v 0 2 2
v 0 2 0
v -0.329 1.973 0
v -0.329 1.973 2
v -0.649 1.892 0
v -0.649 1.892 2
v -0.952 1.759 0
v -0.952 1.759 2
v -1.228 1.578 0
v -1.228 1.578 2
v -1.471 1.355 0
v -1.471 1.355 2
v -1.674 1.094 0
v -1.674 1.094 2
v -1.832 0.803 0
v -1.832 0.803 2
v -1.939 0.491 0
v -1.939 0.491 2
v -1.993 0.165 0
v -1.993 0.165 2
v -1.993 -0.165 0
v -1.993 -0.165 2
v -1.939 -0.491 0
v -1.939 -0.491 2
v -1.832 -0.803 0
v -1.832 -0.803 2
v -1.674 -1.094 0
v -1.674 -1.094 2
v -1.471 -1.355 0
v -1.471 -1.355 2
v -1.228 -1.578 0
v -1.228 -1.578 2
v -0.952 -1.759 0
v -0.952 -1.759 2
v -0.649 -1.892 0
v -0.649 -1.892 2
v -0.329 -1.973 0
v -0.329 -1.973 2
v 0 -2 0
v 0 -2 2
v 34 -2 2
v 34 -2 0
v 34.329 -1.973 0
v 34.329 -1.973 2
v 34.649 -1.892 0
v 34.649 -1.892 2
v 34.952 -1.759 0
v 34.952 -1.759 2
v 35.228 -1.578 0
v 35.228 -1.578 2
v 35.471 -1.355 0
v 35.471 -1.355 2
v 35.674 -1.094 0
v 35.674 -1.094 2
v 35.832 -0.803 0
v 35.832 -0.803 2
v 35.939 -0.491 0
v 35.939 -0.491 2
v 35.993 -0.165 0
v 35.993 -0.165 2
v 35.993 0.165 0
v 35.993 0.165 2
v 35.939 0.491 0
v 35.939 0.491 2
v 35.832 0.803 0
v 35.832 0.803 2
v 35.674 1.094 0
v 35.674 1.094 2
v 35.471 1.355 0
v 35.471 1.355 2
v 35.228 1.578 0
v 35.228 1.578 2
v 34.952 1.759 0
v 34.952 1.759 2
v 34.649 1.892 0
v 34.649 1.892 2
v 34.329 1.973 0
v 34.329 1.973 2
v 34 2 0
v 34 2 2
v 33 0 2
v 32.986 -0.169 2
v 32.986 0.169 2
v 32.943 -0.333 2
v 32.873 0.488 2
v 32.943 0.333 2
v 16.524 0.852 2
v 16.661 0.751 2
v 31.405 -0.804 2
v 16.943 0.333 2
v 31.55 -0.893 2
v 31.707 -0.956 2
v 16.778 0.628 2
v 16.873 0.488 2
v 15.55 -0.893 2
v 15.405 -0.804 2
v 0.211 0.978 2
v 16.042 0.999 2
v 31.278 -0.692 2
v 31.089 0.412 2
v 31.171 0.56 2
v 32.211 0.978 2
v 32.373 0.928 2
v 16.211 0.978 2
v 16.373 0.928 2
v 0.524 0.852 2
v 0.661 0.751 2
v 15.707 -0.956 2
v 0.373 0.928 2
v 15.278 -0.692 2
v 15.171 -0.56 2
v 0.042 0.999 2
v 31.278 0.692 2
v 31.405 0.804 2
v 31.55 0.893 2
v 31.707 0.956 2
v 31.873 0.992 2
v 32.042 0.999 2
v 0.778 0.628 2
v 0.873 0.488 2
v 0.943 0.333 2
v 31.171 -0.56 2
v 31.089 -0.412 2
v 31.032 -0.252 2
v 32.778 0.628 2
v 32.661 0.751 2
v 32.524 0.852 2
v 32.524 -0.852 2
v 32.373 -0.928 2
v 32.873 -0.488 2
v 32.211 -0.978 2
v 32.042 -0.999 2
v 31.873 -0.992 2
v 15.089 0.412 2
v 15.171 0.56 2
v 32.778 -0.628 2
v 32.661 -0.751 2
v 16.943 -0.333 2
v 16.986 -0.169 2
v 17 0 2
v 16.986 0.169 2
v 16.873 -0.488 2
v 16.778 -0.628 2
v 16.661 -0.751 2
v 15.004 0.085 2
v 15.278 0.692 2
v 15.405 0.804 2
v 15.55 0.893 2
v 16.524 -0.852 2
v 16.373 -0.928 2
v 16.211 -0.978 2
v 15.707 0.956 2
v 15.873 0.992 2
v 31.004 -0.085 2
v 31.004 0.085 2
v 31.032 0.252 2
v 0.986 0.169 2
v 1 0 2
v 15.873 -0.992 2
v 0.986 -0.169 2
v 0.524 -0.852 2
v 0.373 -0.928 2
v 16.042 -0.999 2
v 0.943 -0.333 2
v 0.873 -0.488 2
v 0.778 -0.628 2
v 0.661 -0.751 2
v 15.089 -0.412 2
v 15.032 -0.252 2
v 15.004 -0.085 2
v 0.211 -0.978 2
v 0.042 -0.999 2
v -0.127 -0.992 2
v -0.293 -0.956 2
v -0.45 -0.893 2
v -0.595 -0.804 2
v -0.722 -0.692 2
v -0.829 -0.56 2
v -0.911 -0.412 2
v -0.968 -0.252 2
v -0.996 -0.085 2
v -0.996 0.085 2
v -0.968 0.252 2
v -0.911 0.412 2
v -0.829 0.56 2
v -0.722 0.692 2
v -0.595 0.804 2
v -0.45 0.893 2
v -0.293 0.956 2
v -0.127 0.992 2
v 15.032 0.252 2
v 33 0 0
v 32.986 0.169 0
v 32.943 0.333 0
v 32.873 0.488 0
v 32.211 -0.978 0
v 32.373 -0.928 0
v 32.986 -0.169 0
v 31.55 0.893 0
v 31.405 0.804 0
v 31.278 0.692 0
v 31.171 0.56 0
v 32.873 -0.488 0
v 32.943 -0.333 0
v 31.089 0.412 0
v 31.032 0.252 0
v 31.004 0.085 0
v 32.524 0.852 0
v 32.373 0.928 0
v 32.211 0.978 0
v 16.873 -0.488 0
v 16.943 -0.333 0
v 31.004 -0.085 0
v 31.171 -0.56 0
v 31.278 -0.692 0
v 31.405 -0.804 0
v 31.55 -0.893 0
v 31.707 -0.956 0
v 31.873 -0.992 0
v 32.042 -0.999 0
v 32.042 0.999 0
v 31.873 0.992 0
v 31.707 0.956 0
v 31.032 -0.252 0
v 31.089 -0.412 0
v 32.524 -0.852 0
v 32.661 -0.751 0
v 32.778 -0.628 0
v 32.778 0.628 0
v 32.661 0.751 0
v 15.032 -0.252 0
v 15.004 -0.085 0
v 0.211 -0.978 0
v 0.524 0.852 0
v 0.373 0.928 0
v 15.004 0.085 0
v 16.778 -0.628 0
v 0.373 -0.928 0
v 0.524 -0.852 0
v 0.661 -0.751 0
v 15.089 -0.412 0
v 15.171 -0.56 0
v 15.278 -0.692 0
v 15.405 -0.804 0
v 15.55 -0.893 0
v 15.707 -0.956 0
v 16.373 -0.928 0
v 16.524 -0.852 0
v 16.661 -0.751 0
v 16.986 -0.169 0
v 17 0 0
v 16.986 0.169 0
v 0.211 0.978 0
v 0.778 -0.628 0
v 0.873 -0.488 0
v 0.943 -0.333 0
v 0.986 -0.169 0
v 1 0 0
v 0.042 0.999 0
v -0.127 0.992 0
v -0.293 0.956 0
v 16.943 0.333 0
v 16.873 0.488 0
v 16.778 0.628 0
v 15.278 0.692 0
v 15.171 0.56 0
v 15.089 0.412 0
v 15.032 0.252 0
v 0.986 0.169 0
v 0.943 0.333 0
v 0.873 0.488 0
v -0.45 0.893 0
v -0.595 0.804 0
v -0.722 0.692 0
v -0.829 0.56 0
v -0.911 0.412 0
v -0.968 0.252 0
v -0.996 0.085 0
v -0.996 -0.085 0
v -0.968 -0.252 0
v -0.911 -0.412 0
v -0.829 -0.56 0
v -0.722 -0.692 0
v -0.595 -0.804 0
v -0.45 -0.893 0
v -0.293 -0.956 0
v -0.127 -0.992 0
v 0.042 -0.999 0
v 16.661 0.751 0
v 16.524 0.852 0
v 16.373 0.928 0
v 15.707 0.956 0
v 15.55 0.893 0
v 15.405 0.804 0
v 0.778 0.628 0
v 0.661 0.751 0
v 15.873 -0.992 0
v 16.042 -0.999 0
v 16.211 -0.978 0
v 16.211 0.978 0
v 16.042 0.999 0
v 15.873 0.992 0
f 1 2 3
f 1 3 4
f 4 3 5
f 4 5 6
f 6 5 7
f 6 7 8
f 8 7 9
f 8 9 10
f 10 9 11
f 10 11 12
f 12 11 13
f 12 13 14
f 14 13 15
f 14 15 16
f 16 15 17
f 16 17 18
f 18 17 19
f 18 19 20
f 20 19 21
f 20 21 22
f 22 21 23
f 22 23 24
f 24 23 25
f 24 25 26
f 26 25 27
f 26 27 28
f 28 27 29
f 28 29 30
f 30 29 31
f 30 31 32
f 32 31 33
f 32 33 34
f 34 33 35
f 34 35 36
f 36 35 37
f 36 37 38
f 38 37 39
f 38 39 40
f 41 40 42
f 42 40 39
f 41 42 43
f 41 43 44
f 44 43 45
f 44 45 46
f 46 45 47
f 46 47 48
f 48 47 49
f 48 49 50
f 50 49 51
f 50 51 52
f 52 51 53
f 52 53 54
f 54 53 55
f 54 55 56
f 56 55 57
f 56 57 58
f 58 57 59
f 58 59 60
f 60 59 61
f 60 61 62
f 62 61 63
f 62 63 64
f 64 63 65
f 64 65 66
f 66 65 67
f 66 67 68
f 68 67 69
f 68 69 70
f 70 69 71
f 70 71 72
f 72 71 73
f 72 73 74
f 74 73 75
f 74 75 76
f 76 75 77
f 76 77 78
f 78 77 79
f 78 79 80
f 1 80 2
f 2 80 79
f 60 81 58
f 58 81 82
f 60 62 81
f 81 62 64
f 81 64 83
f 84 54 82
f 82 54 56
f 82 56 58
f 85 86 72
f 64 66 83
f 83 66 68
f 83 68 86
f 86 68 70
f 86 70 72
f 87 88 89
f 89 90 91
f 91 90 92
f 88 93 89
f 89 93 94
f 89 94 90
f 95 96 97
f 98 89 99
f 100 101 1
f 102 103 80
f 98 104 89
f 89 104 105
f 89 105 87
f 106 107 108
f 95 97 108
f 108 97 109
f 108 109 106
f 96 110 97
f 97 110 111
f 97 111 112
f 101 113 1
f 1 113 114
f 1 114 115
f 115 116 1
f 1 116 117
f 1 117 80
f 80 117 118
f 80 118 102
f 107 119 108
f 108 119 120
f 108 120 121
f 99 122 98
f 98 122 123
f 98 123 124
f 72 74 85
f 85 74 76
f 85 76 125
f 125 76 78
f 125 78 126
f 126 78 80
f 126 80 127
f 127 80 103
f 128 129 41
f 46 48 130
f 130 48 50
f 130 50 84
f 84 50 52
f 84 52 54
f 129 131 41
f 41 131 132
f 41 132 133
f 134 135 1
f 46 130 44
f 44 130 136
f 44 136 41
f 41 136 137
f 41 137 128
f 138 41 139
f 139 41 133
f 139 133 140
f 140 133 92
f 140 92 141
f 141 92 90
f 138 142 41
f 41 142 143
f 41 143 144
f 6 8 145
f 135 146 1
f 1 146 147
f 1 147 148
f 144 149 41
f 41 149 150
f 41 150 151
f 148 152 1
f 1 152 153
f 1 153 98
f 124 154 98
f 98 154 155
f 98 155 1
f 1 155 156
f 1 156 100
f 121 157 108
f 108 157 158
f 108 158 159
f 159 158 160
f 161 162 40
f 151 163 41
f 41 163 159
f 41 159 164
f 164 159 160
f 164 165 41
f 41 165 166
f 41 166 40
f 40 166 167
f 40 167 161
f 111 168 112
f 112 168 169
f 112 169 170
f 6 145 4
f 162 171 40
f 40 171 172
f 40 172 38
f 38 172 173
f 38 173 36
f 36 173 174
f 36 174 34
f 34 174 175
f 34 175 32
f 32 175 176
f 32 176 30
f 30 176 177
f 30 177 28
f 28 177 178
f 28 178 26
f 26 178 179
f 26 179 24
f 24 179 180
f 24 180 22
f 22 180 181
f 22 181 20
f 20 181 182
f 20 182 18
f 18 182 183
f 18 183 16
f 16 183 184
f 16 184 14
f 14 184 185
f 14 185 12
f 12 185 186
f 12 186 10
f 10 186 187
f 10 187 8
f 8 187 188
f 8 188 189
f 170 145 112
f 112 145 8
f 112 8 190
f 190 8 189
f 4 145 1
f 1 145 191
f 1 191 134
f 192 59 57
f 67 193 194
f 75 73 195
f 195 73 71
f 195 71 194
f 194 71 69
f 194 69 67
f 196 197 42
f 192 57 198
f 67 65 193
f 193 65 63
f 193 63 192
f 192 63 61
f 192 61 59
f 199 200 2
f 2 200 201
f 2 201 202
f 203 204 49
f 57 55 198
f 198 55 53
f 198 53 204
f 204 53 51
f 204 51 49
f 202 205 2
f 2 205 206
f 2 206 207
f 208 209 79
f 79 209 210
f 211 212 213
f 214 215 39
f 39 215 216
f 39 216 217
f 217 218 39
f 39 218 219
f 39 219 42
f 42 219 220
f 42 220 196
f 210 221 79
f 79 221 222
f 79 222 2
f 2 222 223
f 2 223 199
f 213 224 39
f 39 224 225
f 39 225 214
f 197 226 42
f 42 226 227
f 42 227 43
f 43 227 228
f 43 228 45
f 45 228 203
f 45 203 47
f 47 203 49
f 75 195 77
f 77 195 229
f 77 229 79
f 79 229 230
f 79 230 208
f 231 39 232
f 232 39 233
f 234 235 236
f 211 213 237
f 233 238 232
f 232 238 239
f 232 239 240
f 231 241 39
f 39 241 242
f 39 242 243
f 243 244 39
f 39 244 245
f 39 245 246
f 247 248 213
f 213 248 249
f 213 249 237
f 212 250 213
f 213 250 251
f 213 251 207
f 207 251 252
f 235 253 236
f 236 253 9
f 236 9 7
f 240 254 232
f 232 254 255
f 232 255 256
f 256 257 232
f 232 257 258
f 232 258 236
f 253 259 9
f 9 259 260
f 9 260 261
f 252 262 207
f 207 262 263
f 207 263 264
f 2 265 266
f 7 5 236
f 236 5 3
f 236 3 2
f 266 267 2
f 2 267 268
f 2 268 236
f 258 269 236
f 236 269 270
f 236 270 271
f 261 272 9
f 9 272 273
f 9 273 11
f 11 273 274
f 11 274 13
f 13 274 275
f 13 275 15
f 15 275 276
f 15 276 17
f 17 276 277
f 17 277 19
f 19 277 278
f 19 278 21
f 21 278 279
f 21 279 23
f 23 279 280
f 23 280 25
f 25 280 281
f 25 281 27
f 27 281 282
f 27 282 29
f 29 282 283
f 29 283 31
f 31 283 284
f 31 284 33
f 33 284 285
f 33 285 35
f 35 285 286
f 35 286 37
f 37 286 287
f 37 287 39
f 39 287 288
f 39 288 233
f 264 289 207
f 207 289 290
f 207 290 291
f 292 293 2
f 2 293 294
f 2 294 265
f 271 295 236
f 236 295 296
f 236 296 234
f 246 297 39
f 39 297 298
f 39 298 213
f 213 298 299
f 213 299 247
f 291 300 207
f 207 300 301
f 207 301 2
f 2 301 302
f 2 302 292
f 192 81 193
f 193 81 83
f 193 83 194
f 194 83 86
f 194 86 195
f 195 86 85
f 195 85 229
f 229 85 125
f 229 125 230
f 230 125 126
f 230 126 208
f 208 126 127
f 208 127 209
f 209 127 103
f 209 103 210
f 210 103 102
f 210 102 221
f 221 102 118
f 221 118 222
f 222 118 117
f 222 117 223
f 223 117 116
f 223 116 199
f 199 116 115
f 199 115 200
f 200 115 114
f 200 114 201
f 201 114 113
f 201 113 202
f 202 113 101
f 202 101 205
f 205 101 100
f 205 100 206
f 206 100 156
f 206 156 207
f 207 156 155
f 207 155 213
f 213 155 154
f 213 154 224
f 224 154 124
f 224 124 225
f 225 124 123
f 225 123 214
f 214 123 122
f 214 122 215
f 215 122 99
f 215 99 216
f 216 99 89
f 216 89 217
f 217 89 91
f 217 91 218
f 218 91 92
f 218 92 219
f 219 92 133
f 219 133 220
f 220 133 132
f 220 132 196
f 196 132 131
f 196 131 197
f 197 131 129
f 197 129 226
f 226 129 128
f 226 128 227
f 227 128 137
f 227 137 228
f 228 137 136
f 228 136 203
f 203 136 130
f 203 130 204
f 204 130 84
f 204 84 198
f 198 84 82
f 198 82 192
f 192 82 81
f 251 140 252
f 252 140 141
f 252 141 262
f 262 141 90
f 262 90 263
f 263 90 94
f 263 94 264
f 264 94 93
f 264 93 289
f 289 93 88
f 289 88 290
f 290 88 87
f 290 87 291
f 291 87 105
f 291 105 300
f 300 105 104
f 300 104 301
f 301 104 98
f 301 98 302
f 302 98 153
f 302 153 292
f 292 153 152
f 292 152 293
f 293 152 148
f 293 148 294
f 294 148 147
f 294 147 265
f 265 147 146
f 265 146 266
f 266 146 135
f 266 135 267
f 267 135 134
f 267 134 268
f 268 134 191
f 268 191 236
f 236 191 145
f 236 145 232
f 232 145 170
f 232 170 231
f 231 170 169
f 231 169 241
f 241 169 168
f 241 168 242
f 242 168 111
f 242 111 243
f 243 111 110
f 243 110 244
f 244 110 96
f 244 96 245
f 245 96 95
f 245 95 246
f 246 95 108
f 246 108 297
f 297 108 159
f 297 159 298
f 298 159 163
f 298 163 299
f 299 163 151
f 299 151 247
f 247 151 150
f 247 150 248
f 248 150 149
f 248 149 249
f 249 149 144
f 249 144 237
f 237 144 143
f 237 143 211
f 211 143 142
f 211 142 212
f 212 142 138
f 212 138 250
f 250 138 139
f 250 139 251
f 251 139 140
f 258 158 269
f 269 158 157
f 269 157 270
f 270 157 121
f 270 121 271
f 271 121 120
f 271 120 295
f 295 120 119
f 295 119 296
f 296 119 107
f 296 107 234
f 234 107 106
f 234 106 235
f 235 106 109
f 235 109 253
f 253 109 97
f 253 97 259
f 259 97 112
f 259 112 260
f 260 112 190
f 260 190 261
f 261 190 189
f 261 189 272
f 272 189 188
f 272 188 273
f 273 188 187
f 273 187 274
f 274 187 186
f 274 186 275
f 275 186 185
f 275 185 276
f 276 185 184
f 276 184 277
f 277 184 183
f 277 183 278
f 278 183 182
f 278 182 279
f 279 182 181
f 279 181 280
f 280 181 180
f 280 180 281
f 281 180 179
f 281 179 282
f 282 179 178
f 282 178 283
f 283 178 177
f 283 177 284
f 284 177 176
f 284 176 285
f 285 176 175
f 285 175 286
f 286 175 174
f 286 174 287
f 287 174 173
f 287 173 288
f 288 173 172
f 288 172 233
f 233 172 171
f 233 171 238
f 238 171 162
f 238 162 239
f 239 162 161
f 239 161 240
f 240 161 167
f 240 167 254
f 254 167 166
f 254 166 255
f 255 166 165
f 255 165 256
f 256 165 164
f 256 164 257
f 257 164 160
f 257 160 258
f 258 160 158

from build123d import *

# Parameters (mm, degrees)
SALIENTE_EXTRUIR1_DEPTH = 2
CROQUIS2_R              = 1
CORTAR_EXTRUIR1_DEPTH   = 2


with BuildPart() as part:
    # Croquis1 → Saliente-Extruir1 (new body)
    with BuildSketch(Plane.XY):
        with BuildLine():
            Line((0, 2), (34, 2))
            ThreePointArc((34, 2), (36, 0), (34, -2))
            Line((34, -2), (0, -2))
            ThreePointArc((0, -2), (-2, 0), (0, 2))
        make_face()
    extrude(amount=SALIENTE_EXTRUIR1_DEPTH)

    # Croquis2 → Cortar-Extruir1 (cut)
    with BuildSketch(Plane.XY.offset(2)):
        Circle(CROQUIS2_R)
        with Locations((16, 0)):
            Circle(CROQUIS2_R)
        with Locations((32, 0)):
            Circle(CROQUIS2_R)
    extrude(amount=-CORTAR_EXTRUIR1_DEPTH, mode=Mode.SUBTRACT)


solid = part.part
